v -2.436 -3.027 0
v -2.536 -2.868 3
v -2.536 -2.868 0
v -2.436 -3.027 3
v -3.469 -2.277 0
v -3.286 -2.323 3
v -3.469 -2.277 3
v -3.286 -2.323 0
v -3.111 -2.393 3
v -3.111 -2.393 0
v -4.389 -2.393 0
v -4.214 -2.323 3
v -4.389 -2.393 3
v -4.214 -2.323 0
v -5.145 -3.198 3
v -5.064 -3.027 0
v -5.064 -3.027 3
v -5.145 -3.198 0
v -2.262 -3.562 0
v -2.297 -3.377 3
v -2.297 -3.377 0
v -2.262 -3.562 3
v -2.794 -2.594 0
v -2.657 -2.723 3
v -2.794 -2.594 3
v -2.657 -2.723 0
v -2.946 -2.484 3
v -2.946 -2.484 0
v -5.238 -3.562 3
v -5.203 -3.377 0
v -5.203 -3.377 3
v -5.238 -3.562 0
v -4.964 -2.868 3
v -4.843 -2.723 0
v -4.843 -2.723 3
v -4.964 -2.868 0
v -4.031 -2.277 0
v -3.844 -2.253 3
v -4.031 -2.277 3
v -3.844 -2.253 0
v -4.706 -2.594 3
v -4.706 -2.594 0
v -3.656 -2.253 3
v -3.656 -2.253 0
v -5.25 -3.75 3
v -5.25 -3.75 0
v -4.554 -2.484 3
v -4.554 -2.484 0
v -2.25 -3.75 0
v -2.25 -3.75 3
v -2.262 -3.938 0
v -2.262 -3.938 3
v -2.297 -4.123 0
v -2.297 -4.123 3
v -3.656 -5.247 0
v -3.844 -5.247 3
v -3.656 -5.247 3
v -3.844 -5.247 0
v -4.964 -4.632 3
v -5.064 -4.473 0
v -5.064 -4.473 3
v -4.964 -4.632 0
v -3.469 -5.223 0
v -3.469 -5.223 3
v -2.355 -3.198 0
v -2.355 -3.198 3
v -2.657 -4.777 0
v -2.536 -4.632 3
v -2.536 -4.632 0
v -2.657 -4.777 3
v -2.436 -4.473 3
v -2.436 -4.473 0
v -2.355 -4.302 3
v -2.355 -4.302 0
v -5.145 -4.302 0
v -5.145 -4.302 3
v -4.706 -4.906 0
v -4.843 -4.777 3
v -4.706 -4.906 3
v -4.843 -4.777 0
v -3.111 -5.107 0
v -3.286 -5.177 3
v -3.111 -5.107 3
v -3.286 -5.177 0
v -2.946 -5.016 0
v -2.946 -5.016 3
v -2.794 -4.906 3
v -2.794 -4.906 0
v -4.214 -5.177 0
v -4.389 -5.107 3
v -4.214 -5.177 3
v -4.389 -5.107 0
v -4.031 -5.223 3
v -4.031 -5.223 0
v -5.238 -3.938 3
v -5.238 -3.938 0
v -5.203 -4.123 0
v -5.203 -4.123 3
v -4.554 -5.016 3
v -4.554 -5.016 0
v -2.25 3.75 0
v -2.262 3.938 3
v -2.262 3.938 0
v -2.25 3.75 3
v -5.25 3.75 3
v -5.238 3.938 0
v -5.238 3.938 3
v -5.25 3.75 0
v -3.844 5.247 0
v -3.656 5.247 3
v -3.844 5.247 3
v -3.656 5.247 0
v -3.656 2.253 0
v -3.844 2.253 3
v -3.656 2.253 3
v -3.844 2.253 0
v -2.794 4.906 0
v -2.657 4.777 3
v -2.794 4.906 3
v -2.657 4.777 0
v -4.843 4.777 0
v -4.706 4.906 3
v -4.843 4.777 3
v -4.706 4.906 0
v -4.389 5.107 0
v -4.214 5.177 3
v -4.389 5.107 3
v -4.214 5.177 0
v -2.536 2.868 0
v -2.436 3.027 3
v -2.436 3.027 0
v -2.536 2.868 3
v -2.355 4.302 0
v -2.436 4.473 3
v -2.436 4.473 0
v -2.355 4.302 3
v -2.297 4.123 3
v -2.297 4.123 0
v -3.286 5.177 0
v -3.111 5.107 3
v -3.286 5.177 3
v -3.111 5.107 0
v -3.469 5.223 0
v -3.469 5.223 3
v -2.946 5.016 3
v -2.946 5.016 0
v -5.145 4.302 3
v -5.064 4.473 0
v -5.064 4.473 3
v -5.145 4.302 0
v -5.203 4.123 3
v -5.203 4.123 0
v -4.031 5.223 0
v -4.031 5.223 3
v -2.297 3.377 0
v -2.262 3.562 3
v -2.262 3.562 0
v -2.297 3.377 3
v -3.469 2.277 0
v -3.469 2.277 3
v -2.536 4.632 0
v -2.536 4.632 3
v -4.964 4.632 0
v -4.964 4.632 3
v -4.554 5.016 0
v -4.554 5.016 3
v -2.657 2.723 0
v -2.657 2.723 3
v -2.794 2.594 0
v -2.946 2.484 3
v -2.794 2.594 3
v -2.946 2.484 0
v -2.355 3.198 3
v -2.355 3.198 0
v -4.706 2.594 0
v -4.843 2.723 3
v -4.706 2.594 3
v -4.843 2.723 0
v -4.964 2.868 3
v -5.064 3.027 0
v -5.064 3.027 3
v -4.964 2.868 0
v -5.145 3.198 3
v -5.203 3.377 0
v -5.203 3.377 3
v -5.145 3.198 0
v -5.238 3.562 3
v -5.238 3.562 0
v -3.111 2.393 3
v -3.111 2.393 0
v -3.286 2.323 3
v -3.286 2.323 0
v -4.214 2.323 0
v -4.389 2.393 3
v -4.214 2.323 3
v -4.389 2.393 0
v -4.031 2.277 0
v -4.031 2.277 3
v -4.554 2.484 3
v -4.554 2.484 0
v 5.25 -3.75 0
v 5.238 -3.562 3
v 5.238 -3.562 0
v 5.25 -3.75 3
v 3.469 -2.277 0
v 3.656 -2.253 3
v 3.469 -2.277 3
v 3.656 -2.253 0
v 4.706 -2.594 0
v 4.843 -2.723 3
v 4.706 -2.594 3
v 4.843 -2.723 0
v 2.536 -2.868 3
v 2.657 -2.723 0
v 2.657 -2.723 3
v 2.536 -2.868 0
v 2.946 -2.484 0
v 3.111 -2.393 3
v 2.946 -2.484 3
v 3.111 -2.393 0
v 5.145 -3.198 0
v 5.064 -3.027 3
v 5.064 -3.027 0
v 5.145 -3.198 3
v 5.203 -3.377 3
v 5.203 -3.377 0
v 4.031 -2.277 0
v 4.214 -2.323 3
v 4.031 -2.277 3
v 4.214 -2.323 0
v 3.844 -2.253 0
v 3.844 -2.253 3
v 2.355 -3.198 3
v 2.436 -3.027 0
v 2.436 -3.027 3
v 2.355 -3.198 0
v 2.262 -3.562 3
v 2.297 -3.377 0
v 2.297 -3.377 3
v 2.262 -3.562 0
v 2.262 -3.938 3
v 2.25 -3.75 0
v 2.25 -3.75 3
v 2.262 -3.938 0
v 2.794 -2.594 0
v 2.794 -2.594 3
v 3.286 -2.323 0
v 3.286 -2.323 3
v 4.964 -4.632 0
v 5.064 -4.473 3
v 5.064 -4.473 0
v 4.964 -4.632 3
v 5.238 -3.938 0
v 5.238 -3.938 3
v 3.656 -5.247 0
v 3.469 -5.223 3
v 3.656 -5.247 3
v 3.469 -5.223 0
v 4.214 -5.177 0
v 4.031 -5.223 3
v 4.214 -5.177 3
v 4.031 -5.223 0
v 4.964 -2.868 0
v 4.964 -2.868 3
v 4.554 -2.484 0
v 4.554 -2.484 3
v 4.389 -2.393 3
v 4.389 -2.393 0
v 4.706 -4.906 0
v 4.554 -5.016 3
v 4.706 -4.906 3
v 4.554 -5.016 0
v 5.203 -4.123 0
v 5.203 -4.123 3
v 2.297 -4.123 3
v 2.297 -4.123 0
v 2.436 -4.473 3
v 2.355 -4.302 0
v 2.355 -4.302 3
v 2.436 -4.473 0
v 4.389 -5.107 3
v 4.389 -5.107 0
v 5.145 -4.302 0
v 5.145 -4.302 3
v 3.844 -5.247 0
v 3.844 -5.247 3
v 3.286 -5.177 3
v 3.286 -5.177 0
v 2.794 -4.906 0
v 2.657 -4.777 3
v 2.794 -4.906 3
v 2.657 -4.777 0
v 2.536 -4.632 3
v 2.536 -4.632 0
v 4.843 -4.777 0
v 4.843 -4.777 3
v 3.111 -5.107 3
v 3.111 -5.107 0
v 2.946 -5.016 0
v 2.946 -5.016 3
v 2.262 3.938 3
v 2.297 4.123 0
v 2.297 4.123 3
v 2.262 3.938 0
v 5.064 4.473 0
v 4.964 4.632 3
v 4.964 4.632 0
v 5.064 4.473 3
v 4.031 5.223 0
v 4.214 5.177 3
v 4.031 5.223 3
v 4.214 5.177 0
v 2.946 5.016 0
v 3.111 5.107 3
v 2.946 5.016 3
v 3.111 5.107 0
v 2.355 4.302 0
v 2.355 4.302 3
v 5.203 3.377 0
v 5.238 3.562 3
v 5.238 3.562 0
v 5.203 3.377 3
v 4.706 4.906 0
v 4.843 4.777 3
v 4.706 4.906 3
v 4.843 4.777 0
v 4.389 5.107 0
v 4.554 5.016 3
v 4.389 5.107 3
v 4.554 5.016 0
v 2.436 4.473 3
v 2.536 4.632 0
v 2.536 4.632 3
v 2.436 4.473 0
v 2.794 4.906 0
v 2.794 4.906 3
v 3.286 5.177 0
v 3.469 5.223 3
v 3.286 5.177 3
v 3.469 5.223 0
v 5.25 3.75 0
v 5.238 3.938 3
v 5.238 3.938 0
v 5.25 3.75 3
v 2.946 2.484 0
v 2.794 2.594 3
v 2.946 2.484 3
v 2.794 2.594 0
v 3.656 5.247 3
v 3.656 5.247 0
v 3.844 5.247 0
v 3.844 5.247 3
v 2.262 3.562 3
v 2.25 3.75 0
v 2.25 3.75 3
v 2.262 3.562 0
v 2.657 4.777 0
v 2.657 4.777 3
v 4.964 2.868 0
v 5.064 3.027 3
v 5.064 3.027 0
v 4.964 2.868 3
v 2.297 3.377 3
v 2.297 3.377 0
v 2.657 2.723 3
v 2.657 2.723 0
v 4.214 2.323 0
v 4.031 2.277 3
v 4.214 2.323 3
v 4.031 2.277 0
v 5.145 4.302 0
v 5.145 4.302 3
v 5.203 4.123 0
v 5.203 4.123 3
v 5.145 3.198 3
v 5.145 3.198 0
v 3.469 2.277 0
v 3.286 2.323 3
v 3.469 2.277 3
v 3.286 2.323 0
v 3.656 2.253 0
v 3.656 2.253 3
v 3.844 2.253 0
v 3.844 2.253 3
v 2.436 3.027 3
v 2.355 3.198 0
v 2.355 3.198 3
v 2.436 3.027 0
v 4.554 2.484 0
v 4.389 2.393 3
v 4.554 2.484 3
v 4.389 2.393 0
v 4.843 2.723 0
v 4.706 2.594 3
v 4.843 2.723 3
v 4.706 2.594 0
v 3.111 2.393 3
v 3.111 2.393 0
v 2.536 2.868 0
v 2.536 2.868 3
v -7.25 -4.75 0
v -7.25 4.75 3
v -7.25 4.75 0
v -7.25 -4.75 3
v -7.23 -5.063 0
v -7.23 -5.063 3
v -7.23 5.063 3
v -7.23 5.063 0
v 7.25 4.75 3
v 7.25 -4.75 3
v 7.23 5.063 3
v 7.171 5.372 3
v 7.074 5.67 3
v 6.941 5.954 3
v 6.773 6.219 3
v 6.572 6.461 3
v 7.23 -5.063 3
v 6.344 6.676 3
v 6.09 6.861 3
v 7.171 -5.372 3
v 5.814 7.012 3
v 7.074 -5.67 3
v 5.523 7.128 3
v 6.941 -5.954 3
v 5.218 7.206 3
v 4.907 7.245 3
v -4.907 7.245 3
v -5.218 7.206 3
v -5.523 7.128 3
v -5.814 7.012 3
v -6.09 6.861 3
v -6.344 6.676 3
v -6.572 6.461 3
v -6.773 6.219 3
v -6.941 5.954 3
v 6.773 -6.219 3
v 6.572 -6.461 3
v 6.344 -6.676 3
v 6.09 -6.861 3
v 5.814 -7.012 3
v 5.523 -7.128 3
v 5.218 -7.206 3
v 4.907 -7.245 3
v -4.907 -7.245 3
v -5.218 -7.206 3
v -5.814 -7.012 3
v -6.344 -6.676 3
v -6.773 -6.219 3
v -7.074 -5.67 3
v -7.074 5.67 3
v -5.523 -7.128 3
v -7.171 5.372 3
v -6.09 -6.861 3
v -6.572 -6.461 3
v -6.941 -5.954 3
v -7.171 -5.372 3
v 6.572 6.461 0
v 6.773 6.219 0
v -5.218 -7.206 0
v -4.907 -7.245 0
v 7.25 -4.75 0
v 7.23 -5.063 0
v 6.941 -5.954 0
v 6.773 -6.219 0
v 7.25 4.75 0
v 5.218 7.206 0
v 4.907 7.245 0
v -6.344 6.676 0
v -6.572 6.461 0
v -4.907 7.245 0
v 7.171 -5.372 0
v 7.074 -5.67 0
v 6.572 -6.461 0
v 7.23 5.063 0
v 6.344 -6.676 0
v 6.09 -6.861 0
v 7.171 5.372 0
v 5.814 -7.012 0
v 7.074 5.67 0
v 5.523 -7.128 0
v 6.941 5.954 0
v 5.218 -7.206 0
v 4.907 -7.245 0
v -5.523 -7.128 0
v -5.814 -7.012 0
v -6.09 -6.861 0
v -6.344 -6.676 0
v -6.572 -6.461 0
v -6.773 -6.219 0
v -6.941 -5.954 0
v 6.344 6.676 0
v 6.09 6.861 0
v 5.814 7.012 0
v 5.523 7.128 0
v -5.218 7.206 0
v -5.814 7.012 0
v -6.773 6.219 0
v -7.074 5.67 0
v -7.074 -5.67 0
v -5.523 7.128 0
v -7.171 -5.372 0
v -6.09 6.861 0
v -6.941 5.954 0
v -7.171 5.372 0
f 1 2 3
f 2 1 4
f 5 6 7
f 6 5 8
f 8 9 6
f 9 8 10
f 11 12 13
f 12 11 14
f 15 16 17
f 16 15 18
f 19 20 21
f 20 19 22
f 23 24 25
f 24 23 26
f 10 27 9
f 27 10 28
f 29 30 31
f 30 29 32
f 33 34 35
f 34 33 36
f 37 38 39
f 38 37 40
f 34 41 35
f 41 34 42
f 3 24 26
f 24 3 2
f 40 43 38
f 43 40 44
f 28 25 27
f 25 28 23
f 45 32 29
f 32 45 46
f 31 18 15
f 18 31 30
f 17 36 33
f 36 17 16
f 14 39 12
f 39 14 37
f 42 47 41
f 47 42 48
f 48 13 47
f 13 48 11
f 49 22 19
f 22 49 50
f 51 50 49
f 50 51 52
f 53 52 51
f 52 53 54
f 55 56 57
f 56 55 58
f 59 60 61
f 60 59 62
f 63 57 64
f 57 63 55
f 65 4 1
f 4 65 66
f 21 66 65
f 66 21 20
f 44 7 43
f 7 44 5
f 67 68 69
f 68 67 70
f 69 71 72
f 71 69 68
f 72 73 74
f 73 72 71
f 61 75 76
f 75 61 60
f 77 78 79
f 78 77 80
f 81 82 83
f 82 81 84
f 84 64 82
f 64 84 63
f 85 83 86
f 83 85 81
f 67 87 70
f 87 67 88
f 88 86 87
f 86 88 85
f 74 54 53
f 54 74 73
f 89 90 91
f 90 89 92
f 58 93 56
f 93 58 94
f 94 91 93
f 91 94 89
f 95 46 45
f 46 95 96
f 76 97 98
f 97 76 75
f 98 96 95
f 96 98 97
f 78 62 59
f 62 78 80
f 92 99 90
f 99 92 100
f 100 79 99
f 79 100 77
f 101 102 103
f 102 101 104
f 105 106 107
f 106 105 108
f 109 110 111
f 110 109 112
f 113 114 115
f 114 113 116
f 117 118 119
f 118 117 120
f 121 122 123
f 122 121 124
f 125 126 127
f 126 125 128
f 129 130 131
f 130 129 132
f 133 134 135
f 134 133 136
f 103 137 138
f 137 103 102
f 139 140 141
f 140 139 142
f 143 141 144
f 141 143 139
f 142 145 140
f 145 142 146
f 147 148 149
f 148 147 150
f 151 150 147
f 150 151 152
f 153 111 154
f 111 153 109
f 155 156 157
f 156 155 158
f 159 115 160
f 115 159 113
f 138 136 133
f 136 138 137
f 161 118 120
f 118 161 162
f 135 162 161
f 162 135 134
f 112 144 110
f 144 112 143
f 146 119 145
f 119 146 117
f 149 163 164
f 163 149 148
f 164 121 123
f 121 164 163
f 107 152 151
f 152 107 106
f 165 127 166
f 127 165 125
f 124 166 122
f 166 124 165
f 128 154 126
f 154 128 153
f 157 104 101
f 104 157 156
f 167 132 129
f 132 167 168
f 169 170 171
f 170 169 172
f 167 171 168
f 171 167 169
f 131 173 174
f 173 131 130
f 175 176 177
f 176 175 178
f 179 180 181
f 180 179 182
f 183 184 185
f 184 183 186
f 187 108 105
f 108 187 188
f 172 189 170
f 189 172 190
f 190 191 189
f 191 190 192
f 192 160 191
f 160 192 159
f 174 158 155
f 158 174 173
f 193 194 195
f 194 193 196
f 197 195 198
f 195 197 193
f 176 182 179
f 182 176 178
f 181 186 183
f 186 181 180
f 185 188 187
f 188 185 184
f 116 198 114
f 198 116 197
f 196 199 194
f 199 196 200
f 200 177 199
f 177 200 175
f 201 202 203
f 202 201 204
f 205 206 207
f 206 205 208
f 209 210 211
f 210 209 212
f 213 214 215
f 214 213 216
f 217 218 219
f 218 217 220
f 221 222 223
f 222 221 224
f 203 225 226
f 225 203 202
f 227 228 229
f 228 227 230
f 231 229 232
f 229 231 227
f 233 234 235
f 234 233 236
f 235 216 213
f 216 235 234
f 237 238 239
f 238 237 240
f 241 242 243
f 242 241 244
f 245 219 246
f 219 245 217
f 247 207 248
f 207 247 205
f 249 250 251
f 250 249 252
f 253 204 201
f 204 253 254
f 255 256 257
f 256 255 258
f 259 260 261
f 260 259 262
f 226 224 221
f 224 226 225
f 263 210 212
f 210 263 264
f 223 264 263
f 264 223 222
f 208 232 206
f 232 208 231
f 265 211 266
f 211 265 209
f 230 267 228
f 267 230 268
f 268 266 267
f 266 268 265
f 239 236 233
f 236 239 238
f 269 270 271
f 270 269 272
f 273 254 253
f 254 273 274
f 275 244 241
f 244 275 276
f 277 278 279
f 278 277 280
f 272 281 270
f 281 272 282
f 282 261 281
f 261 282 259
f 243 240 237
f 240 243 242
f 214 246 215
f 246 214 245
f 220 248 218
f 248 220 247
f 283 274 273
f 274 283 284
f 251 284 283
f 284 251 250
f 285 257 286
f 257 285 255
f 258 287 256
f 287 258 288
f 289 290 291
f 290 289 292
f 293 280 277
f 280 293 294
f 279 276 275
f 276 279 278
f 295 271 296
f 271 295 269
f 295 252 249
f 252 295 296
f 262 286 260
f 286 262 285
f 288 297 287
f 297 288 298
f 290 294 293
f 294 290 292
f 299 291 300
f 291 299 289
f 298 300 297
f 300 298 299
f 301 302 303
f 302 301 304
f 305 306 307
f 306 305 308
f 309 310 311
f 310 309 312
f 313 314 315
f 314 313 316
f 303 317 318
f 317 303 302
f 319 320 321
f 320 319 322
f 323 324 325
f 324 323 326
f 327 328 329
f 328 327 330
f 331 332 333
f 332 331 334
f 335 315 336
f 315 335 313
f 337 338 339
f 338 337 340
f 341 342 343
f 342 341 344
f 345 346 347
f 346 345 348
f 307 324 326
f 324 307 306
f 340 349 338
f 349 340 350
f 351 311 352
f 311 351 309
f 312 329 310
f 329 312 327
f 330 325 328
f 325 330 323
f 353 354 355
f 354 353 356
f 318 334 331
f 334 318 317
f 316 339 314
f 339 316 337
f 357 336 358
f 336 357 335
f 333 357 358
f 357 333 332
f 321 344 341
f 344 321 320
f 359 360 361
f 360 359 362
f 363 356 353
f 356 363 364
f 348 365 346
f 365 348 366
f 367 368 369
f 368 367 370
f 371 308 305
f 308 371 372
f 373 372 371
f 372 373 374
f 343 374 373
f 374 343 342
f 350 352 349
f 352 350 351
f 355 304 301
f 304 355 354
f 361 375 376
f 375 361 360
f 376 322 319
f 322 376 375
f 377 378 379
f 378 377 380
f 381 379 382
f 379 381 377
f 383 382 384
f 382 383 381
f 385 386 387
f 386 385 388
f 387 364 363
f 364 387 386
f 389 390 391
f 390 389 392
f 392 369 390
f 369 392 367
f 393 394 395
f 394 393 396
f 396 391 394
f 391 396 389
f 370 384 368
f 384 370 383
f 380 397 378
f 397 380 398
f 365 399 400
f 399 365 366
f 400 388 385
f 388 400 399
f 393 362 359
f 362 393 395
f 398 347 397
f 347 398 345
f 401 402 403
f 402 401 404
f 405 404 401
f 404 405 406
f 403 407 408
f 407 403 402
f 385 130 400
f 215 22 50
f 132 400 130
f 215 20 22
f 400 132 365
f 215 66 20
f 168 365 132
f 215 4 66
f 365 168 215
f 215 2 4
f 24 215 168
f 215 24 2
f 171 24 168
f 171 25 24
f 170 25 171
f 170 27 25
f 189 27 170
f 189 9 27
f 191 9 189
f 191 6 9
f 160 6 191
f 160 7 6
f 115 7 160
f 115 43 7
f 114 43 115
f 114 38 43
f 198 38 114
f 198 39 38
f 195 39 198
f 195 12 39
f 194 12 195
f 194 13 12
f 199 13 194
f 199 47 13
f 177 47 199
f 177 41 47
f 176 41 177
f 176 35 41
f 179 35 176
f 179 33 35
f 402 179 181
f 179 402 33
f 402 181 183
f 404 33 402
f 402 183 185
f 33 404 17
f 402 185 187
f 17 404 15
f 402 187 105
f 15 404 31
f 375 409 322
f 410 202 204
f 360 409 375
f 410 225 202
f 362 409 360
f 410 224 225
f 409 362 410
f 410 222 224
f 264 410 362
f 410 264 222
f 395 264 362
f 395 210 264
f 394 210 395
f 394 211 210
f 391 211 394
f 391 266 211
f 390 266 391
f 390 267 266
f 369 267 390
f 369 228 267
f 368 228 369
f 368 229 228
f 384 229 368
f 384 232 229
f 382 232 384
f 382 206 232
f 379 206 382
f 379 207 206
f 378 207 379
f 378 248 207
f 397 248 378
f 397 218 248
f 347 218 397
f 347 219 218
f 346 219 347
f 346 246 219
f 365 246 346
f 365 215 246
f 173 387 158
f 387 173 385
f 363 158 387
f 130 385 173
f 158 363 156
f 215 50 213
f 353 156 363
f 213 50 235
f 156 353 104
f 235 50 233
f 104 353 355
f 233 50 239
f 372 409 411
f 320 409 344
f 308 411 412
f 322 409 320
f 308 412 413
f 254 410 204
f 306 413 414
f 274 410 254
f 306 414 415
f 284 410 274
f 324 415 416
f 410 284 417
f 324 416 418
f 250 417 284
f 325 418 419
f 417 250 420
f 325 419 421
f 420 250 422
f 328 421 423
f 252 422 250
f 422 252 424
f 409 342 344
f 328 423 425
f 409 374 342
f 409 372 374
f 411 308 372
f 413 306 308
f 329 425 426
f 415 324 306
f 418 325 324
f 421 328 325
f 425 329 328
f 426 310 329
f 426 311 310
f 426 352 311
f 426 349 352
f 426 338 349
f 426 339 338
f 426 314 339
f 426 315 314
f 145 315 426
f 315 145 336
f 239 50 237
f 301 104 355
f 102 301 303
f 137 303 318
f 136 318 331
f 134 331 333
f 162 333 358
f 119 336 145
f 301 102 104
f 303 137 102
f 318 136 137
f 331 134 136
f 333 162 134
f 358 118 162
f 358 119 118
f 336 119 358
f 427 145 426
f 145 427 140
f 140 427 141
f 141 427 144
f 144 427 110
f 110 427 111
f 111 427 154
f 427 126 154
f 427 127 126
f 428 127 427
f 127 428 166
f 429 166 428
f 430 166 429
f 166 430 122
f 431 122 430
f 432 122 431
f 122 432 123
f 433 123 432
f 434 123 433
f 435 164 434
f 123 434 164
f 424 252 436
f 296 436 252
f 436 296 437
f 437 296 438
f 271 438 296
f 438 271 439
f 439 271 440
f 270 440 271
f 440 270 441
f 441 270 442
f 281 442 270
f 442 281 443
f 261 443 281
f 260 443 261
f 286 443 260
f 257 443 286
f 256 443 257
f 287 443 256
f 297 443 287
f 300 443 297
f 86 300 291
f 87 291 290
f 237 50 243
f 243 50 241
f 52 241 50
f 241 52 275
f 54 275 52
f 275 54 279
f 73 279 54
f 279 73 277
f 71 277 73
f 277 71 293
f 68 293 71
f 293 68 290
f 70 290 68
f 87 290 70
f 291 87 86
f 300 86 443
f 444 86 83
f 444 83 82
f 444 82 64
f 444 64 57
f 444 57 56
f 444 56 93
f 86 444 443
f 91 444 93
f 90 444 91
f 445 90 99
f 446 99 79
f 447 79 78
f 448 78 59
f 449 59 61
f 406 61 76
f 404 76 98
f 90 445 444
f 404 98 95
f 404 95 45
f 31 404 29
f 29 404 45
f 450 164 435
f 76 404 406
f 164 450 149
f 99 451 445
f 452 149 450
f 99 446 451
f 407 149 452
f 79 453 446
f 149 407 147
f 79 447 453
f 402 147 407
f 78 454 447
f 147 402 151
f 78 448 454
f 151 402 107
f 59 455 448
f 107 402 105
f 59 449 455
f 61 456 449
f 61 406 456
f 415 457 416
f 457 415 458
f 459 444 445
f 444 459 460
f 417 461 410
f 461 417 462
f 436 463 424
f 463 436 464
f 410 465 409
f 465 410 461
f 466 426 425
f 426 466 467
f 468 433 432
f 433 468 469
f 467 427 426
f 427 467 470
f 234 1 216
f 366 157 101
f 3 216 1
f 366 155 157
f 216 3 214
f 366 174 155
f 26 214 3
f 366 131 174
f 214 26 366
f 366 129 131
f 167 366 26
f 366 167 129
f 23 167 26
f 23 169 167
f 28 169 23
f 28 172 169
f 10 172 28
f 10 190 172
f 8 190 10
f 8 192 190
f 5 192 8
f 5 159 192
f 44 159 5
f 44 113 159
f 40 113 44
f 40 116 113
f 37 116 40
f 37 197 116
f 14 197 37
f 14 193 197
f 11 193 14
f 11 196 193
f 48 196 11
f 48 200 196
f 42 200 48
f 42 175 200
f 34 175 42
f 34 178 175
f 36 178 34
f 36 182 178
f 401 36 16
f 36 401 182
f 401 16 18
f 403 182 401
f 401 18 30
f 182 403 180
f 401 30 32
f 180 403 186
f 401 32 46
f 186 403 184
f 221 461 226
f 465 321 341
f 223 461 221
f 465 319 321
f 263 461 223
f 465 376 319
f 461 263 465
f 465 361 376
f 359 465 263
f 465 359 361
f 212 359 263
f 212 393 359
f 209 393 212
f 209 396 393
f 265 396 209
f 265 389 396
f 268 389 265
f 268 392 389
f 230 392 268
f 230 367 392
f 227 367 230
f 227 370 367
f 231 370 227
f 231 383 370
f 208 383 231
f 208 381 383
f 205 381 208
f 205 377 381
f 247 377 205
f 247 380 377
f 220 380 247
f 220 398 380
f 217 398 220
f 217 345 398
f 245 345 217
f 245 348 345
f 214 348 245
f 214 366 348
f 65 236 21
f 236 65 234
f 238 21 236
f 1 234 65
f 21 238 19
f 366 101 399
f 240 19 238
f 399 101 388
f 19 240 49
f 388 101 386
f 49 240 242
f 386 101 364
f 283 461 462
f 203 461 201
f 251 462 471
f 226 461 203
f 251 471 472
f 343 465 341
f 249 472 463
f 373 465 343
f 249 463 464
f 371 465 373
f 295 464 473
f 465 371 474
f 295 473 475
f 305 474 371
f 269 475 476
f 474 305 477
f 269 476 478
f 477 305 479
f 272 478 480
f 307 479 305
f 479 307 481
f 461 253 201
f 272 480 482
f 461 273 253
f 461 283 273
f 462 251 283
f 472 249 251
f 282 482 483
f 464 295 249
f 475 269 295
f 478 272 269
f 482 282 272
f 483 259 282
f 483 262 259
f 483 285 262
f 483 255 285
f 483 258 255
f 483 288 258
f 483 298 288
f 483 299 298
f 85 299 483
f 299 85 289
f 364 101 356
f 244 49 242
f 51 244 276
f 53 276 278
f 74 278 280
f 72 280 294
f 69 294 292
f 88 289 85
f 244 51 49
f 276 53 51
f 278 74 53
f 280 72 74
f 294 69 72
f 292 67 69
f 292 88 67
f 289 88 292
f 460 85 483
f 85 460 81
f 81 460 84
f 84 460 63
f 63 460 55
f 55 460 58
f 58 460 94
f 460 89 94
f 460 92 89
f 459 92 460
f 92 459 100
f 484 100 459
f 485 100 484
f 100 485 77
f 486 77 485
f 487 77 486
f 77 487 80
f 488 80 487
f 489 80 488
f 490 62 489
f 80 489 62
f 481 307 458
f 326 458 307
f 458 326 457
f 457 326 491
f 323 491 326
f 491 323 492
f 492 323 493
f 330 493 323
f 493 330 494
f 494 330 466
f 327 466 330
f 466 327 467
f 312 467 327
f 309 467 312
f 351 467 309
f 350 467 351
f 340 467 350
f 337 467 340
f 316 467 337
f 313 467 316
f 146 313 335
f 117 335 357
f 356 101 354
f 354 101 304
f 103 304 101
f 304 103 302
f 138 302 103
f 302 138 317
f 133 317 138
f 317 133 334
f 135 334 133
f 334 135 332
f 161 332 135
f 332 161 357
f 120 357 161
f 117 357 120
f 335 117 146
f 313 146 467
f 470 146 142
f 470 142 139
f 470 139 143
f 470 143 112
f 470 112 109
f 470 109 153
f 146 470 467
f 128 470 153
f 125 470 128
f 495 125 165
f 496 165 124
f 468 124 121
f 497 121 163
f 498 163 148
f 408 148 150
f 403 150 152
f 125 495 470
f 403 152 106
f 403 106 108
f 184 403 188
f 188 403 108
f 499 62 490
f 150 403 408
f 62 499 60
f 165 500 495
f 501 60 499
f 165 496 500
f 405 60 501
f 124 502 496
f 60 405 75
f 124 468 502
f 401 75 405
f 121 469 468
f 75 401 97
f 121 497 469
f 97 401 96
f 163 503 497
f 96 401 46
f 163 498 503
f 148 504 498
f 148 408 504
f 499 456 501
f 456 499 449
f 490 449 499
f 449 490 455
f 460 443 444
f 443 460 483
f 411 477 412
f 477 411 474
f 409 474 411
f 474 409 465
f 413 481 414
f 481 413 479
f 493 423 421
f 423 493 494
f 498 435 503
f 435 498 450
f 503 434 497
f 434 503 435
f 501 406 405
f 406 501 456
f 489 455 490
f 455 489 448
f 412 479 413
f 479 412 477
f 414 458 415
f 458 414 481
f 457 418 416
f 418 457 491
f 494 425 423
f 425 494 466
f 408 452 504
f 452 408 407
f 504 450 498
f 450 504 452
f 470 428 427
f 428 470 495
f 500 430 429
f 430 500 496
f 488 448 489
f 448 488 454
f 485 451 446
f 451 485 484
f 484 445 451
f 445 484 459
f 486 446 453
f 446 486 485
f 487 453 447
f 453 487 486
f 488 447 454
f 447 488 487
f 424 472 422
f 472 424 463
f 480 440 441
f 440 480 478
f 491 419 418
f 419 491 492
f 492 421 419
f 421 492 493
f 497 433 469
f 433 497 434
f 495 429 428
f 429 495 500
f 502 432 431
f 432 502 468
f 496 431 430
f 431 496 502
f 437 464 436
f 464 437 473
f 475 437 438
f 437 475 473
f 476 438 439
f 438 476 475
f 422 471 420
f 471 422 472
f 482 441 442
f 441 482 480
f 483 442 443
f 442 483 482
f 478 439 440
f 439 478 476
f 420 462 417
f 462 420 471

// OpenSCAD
$fn = 50;


difference() {
	union() {
		translate(v = [0, 0, 0]) {
			rotate(a = [0, 0, 0]) {
				hull() {
					translate(v = [-4.7500000000, 4.7500000000, 0]) {
						rotate(a = [0, 0, 0]) {
							translate(v = [0, 0, 0]) {
								rotate(a = [0, 0, 0]) {
									cylinder(h = 3, r = 2.5000000000);
								}
							}
						}
					}
					translate(v = [4.7500000000, 4.7500000000, 0]) {
						rotate(a = [0, 0, 0]) {
							translate(v = [0, 0, 0]) {
								rotate(a = [0, 0, 0]) {
									cylinder(h = 3, r = 2.5000000000);
								}
							}
						}
					}
					translate(v = [-4.7500000000, -4.7500000000, 0]) {
						rotate(a = [0, 0, 0]) {
							translate(v = [0, 0, 0]) {
								rotate(a = [0, 0, 0]) {
									cylinder(h = 3, r = 2.5000000000);
								}
							}
						}
					}
					translate(v = [4.7500000000, -4.7500000000, 0]) {
						rotate(a = [0, 0, 0]) {
							translate(v = [0, 0, 0]) {
								rotate(a = [0, 0, 0]) {
									cylinder(h = 3, r = 2.5000000000);
								}
							}
						}
					}
				}
			}
		}
	}
	union() {
		translate(v = [-3.7500000000, -3.7500000000, 0]) {
			rotate(a = [0, 0, 0]) {
				translate(v = [0, 0, -50]) {
					rotate(a = [0, 0, 0]) {
						cylinder(h = 100, r = 1.5000000000);
					}
				}
			}
		}
		translate(v = [-3.7500000000, 3.7500000000, 0]) {
			rotate(a = [0, 0, 0]) {
				translate(v = [0, 0, -50]) {
					rotate(a = [0, 0, 0]) {
						cylinder(h = 100, r = 1.5000000000);
					}
				}
			}
		}
		translate(v = [3.7500000000, -3.7500000000, 0]) {
			rotate(a = [0, 0, 0]) {
				translate(v = [0, 0, -50]) {
					rotate(a = [0, 0, 0]) {
						cylinder(h = 100, r = 1.5000000000);
					}
				}
			}
		}
		translate(v = [3.7500000000, 3.7500000000, 0]) {
			rotate(a = [0, 0, 0]) {
				translate(v = [0, 0, -50]) {
					rotate(a = [0, 0, 0]) {
						cylinder(h = 100, r = 1.5000000000);
					}
				}
			}
		}
	}
}
